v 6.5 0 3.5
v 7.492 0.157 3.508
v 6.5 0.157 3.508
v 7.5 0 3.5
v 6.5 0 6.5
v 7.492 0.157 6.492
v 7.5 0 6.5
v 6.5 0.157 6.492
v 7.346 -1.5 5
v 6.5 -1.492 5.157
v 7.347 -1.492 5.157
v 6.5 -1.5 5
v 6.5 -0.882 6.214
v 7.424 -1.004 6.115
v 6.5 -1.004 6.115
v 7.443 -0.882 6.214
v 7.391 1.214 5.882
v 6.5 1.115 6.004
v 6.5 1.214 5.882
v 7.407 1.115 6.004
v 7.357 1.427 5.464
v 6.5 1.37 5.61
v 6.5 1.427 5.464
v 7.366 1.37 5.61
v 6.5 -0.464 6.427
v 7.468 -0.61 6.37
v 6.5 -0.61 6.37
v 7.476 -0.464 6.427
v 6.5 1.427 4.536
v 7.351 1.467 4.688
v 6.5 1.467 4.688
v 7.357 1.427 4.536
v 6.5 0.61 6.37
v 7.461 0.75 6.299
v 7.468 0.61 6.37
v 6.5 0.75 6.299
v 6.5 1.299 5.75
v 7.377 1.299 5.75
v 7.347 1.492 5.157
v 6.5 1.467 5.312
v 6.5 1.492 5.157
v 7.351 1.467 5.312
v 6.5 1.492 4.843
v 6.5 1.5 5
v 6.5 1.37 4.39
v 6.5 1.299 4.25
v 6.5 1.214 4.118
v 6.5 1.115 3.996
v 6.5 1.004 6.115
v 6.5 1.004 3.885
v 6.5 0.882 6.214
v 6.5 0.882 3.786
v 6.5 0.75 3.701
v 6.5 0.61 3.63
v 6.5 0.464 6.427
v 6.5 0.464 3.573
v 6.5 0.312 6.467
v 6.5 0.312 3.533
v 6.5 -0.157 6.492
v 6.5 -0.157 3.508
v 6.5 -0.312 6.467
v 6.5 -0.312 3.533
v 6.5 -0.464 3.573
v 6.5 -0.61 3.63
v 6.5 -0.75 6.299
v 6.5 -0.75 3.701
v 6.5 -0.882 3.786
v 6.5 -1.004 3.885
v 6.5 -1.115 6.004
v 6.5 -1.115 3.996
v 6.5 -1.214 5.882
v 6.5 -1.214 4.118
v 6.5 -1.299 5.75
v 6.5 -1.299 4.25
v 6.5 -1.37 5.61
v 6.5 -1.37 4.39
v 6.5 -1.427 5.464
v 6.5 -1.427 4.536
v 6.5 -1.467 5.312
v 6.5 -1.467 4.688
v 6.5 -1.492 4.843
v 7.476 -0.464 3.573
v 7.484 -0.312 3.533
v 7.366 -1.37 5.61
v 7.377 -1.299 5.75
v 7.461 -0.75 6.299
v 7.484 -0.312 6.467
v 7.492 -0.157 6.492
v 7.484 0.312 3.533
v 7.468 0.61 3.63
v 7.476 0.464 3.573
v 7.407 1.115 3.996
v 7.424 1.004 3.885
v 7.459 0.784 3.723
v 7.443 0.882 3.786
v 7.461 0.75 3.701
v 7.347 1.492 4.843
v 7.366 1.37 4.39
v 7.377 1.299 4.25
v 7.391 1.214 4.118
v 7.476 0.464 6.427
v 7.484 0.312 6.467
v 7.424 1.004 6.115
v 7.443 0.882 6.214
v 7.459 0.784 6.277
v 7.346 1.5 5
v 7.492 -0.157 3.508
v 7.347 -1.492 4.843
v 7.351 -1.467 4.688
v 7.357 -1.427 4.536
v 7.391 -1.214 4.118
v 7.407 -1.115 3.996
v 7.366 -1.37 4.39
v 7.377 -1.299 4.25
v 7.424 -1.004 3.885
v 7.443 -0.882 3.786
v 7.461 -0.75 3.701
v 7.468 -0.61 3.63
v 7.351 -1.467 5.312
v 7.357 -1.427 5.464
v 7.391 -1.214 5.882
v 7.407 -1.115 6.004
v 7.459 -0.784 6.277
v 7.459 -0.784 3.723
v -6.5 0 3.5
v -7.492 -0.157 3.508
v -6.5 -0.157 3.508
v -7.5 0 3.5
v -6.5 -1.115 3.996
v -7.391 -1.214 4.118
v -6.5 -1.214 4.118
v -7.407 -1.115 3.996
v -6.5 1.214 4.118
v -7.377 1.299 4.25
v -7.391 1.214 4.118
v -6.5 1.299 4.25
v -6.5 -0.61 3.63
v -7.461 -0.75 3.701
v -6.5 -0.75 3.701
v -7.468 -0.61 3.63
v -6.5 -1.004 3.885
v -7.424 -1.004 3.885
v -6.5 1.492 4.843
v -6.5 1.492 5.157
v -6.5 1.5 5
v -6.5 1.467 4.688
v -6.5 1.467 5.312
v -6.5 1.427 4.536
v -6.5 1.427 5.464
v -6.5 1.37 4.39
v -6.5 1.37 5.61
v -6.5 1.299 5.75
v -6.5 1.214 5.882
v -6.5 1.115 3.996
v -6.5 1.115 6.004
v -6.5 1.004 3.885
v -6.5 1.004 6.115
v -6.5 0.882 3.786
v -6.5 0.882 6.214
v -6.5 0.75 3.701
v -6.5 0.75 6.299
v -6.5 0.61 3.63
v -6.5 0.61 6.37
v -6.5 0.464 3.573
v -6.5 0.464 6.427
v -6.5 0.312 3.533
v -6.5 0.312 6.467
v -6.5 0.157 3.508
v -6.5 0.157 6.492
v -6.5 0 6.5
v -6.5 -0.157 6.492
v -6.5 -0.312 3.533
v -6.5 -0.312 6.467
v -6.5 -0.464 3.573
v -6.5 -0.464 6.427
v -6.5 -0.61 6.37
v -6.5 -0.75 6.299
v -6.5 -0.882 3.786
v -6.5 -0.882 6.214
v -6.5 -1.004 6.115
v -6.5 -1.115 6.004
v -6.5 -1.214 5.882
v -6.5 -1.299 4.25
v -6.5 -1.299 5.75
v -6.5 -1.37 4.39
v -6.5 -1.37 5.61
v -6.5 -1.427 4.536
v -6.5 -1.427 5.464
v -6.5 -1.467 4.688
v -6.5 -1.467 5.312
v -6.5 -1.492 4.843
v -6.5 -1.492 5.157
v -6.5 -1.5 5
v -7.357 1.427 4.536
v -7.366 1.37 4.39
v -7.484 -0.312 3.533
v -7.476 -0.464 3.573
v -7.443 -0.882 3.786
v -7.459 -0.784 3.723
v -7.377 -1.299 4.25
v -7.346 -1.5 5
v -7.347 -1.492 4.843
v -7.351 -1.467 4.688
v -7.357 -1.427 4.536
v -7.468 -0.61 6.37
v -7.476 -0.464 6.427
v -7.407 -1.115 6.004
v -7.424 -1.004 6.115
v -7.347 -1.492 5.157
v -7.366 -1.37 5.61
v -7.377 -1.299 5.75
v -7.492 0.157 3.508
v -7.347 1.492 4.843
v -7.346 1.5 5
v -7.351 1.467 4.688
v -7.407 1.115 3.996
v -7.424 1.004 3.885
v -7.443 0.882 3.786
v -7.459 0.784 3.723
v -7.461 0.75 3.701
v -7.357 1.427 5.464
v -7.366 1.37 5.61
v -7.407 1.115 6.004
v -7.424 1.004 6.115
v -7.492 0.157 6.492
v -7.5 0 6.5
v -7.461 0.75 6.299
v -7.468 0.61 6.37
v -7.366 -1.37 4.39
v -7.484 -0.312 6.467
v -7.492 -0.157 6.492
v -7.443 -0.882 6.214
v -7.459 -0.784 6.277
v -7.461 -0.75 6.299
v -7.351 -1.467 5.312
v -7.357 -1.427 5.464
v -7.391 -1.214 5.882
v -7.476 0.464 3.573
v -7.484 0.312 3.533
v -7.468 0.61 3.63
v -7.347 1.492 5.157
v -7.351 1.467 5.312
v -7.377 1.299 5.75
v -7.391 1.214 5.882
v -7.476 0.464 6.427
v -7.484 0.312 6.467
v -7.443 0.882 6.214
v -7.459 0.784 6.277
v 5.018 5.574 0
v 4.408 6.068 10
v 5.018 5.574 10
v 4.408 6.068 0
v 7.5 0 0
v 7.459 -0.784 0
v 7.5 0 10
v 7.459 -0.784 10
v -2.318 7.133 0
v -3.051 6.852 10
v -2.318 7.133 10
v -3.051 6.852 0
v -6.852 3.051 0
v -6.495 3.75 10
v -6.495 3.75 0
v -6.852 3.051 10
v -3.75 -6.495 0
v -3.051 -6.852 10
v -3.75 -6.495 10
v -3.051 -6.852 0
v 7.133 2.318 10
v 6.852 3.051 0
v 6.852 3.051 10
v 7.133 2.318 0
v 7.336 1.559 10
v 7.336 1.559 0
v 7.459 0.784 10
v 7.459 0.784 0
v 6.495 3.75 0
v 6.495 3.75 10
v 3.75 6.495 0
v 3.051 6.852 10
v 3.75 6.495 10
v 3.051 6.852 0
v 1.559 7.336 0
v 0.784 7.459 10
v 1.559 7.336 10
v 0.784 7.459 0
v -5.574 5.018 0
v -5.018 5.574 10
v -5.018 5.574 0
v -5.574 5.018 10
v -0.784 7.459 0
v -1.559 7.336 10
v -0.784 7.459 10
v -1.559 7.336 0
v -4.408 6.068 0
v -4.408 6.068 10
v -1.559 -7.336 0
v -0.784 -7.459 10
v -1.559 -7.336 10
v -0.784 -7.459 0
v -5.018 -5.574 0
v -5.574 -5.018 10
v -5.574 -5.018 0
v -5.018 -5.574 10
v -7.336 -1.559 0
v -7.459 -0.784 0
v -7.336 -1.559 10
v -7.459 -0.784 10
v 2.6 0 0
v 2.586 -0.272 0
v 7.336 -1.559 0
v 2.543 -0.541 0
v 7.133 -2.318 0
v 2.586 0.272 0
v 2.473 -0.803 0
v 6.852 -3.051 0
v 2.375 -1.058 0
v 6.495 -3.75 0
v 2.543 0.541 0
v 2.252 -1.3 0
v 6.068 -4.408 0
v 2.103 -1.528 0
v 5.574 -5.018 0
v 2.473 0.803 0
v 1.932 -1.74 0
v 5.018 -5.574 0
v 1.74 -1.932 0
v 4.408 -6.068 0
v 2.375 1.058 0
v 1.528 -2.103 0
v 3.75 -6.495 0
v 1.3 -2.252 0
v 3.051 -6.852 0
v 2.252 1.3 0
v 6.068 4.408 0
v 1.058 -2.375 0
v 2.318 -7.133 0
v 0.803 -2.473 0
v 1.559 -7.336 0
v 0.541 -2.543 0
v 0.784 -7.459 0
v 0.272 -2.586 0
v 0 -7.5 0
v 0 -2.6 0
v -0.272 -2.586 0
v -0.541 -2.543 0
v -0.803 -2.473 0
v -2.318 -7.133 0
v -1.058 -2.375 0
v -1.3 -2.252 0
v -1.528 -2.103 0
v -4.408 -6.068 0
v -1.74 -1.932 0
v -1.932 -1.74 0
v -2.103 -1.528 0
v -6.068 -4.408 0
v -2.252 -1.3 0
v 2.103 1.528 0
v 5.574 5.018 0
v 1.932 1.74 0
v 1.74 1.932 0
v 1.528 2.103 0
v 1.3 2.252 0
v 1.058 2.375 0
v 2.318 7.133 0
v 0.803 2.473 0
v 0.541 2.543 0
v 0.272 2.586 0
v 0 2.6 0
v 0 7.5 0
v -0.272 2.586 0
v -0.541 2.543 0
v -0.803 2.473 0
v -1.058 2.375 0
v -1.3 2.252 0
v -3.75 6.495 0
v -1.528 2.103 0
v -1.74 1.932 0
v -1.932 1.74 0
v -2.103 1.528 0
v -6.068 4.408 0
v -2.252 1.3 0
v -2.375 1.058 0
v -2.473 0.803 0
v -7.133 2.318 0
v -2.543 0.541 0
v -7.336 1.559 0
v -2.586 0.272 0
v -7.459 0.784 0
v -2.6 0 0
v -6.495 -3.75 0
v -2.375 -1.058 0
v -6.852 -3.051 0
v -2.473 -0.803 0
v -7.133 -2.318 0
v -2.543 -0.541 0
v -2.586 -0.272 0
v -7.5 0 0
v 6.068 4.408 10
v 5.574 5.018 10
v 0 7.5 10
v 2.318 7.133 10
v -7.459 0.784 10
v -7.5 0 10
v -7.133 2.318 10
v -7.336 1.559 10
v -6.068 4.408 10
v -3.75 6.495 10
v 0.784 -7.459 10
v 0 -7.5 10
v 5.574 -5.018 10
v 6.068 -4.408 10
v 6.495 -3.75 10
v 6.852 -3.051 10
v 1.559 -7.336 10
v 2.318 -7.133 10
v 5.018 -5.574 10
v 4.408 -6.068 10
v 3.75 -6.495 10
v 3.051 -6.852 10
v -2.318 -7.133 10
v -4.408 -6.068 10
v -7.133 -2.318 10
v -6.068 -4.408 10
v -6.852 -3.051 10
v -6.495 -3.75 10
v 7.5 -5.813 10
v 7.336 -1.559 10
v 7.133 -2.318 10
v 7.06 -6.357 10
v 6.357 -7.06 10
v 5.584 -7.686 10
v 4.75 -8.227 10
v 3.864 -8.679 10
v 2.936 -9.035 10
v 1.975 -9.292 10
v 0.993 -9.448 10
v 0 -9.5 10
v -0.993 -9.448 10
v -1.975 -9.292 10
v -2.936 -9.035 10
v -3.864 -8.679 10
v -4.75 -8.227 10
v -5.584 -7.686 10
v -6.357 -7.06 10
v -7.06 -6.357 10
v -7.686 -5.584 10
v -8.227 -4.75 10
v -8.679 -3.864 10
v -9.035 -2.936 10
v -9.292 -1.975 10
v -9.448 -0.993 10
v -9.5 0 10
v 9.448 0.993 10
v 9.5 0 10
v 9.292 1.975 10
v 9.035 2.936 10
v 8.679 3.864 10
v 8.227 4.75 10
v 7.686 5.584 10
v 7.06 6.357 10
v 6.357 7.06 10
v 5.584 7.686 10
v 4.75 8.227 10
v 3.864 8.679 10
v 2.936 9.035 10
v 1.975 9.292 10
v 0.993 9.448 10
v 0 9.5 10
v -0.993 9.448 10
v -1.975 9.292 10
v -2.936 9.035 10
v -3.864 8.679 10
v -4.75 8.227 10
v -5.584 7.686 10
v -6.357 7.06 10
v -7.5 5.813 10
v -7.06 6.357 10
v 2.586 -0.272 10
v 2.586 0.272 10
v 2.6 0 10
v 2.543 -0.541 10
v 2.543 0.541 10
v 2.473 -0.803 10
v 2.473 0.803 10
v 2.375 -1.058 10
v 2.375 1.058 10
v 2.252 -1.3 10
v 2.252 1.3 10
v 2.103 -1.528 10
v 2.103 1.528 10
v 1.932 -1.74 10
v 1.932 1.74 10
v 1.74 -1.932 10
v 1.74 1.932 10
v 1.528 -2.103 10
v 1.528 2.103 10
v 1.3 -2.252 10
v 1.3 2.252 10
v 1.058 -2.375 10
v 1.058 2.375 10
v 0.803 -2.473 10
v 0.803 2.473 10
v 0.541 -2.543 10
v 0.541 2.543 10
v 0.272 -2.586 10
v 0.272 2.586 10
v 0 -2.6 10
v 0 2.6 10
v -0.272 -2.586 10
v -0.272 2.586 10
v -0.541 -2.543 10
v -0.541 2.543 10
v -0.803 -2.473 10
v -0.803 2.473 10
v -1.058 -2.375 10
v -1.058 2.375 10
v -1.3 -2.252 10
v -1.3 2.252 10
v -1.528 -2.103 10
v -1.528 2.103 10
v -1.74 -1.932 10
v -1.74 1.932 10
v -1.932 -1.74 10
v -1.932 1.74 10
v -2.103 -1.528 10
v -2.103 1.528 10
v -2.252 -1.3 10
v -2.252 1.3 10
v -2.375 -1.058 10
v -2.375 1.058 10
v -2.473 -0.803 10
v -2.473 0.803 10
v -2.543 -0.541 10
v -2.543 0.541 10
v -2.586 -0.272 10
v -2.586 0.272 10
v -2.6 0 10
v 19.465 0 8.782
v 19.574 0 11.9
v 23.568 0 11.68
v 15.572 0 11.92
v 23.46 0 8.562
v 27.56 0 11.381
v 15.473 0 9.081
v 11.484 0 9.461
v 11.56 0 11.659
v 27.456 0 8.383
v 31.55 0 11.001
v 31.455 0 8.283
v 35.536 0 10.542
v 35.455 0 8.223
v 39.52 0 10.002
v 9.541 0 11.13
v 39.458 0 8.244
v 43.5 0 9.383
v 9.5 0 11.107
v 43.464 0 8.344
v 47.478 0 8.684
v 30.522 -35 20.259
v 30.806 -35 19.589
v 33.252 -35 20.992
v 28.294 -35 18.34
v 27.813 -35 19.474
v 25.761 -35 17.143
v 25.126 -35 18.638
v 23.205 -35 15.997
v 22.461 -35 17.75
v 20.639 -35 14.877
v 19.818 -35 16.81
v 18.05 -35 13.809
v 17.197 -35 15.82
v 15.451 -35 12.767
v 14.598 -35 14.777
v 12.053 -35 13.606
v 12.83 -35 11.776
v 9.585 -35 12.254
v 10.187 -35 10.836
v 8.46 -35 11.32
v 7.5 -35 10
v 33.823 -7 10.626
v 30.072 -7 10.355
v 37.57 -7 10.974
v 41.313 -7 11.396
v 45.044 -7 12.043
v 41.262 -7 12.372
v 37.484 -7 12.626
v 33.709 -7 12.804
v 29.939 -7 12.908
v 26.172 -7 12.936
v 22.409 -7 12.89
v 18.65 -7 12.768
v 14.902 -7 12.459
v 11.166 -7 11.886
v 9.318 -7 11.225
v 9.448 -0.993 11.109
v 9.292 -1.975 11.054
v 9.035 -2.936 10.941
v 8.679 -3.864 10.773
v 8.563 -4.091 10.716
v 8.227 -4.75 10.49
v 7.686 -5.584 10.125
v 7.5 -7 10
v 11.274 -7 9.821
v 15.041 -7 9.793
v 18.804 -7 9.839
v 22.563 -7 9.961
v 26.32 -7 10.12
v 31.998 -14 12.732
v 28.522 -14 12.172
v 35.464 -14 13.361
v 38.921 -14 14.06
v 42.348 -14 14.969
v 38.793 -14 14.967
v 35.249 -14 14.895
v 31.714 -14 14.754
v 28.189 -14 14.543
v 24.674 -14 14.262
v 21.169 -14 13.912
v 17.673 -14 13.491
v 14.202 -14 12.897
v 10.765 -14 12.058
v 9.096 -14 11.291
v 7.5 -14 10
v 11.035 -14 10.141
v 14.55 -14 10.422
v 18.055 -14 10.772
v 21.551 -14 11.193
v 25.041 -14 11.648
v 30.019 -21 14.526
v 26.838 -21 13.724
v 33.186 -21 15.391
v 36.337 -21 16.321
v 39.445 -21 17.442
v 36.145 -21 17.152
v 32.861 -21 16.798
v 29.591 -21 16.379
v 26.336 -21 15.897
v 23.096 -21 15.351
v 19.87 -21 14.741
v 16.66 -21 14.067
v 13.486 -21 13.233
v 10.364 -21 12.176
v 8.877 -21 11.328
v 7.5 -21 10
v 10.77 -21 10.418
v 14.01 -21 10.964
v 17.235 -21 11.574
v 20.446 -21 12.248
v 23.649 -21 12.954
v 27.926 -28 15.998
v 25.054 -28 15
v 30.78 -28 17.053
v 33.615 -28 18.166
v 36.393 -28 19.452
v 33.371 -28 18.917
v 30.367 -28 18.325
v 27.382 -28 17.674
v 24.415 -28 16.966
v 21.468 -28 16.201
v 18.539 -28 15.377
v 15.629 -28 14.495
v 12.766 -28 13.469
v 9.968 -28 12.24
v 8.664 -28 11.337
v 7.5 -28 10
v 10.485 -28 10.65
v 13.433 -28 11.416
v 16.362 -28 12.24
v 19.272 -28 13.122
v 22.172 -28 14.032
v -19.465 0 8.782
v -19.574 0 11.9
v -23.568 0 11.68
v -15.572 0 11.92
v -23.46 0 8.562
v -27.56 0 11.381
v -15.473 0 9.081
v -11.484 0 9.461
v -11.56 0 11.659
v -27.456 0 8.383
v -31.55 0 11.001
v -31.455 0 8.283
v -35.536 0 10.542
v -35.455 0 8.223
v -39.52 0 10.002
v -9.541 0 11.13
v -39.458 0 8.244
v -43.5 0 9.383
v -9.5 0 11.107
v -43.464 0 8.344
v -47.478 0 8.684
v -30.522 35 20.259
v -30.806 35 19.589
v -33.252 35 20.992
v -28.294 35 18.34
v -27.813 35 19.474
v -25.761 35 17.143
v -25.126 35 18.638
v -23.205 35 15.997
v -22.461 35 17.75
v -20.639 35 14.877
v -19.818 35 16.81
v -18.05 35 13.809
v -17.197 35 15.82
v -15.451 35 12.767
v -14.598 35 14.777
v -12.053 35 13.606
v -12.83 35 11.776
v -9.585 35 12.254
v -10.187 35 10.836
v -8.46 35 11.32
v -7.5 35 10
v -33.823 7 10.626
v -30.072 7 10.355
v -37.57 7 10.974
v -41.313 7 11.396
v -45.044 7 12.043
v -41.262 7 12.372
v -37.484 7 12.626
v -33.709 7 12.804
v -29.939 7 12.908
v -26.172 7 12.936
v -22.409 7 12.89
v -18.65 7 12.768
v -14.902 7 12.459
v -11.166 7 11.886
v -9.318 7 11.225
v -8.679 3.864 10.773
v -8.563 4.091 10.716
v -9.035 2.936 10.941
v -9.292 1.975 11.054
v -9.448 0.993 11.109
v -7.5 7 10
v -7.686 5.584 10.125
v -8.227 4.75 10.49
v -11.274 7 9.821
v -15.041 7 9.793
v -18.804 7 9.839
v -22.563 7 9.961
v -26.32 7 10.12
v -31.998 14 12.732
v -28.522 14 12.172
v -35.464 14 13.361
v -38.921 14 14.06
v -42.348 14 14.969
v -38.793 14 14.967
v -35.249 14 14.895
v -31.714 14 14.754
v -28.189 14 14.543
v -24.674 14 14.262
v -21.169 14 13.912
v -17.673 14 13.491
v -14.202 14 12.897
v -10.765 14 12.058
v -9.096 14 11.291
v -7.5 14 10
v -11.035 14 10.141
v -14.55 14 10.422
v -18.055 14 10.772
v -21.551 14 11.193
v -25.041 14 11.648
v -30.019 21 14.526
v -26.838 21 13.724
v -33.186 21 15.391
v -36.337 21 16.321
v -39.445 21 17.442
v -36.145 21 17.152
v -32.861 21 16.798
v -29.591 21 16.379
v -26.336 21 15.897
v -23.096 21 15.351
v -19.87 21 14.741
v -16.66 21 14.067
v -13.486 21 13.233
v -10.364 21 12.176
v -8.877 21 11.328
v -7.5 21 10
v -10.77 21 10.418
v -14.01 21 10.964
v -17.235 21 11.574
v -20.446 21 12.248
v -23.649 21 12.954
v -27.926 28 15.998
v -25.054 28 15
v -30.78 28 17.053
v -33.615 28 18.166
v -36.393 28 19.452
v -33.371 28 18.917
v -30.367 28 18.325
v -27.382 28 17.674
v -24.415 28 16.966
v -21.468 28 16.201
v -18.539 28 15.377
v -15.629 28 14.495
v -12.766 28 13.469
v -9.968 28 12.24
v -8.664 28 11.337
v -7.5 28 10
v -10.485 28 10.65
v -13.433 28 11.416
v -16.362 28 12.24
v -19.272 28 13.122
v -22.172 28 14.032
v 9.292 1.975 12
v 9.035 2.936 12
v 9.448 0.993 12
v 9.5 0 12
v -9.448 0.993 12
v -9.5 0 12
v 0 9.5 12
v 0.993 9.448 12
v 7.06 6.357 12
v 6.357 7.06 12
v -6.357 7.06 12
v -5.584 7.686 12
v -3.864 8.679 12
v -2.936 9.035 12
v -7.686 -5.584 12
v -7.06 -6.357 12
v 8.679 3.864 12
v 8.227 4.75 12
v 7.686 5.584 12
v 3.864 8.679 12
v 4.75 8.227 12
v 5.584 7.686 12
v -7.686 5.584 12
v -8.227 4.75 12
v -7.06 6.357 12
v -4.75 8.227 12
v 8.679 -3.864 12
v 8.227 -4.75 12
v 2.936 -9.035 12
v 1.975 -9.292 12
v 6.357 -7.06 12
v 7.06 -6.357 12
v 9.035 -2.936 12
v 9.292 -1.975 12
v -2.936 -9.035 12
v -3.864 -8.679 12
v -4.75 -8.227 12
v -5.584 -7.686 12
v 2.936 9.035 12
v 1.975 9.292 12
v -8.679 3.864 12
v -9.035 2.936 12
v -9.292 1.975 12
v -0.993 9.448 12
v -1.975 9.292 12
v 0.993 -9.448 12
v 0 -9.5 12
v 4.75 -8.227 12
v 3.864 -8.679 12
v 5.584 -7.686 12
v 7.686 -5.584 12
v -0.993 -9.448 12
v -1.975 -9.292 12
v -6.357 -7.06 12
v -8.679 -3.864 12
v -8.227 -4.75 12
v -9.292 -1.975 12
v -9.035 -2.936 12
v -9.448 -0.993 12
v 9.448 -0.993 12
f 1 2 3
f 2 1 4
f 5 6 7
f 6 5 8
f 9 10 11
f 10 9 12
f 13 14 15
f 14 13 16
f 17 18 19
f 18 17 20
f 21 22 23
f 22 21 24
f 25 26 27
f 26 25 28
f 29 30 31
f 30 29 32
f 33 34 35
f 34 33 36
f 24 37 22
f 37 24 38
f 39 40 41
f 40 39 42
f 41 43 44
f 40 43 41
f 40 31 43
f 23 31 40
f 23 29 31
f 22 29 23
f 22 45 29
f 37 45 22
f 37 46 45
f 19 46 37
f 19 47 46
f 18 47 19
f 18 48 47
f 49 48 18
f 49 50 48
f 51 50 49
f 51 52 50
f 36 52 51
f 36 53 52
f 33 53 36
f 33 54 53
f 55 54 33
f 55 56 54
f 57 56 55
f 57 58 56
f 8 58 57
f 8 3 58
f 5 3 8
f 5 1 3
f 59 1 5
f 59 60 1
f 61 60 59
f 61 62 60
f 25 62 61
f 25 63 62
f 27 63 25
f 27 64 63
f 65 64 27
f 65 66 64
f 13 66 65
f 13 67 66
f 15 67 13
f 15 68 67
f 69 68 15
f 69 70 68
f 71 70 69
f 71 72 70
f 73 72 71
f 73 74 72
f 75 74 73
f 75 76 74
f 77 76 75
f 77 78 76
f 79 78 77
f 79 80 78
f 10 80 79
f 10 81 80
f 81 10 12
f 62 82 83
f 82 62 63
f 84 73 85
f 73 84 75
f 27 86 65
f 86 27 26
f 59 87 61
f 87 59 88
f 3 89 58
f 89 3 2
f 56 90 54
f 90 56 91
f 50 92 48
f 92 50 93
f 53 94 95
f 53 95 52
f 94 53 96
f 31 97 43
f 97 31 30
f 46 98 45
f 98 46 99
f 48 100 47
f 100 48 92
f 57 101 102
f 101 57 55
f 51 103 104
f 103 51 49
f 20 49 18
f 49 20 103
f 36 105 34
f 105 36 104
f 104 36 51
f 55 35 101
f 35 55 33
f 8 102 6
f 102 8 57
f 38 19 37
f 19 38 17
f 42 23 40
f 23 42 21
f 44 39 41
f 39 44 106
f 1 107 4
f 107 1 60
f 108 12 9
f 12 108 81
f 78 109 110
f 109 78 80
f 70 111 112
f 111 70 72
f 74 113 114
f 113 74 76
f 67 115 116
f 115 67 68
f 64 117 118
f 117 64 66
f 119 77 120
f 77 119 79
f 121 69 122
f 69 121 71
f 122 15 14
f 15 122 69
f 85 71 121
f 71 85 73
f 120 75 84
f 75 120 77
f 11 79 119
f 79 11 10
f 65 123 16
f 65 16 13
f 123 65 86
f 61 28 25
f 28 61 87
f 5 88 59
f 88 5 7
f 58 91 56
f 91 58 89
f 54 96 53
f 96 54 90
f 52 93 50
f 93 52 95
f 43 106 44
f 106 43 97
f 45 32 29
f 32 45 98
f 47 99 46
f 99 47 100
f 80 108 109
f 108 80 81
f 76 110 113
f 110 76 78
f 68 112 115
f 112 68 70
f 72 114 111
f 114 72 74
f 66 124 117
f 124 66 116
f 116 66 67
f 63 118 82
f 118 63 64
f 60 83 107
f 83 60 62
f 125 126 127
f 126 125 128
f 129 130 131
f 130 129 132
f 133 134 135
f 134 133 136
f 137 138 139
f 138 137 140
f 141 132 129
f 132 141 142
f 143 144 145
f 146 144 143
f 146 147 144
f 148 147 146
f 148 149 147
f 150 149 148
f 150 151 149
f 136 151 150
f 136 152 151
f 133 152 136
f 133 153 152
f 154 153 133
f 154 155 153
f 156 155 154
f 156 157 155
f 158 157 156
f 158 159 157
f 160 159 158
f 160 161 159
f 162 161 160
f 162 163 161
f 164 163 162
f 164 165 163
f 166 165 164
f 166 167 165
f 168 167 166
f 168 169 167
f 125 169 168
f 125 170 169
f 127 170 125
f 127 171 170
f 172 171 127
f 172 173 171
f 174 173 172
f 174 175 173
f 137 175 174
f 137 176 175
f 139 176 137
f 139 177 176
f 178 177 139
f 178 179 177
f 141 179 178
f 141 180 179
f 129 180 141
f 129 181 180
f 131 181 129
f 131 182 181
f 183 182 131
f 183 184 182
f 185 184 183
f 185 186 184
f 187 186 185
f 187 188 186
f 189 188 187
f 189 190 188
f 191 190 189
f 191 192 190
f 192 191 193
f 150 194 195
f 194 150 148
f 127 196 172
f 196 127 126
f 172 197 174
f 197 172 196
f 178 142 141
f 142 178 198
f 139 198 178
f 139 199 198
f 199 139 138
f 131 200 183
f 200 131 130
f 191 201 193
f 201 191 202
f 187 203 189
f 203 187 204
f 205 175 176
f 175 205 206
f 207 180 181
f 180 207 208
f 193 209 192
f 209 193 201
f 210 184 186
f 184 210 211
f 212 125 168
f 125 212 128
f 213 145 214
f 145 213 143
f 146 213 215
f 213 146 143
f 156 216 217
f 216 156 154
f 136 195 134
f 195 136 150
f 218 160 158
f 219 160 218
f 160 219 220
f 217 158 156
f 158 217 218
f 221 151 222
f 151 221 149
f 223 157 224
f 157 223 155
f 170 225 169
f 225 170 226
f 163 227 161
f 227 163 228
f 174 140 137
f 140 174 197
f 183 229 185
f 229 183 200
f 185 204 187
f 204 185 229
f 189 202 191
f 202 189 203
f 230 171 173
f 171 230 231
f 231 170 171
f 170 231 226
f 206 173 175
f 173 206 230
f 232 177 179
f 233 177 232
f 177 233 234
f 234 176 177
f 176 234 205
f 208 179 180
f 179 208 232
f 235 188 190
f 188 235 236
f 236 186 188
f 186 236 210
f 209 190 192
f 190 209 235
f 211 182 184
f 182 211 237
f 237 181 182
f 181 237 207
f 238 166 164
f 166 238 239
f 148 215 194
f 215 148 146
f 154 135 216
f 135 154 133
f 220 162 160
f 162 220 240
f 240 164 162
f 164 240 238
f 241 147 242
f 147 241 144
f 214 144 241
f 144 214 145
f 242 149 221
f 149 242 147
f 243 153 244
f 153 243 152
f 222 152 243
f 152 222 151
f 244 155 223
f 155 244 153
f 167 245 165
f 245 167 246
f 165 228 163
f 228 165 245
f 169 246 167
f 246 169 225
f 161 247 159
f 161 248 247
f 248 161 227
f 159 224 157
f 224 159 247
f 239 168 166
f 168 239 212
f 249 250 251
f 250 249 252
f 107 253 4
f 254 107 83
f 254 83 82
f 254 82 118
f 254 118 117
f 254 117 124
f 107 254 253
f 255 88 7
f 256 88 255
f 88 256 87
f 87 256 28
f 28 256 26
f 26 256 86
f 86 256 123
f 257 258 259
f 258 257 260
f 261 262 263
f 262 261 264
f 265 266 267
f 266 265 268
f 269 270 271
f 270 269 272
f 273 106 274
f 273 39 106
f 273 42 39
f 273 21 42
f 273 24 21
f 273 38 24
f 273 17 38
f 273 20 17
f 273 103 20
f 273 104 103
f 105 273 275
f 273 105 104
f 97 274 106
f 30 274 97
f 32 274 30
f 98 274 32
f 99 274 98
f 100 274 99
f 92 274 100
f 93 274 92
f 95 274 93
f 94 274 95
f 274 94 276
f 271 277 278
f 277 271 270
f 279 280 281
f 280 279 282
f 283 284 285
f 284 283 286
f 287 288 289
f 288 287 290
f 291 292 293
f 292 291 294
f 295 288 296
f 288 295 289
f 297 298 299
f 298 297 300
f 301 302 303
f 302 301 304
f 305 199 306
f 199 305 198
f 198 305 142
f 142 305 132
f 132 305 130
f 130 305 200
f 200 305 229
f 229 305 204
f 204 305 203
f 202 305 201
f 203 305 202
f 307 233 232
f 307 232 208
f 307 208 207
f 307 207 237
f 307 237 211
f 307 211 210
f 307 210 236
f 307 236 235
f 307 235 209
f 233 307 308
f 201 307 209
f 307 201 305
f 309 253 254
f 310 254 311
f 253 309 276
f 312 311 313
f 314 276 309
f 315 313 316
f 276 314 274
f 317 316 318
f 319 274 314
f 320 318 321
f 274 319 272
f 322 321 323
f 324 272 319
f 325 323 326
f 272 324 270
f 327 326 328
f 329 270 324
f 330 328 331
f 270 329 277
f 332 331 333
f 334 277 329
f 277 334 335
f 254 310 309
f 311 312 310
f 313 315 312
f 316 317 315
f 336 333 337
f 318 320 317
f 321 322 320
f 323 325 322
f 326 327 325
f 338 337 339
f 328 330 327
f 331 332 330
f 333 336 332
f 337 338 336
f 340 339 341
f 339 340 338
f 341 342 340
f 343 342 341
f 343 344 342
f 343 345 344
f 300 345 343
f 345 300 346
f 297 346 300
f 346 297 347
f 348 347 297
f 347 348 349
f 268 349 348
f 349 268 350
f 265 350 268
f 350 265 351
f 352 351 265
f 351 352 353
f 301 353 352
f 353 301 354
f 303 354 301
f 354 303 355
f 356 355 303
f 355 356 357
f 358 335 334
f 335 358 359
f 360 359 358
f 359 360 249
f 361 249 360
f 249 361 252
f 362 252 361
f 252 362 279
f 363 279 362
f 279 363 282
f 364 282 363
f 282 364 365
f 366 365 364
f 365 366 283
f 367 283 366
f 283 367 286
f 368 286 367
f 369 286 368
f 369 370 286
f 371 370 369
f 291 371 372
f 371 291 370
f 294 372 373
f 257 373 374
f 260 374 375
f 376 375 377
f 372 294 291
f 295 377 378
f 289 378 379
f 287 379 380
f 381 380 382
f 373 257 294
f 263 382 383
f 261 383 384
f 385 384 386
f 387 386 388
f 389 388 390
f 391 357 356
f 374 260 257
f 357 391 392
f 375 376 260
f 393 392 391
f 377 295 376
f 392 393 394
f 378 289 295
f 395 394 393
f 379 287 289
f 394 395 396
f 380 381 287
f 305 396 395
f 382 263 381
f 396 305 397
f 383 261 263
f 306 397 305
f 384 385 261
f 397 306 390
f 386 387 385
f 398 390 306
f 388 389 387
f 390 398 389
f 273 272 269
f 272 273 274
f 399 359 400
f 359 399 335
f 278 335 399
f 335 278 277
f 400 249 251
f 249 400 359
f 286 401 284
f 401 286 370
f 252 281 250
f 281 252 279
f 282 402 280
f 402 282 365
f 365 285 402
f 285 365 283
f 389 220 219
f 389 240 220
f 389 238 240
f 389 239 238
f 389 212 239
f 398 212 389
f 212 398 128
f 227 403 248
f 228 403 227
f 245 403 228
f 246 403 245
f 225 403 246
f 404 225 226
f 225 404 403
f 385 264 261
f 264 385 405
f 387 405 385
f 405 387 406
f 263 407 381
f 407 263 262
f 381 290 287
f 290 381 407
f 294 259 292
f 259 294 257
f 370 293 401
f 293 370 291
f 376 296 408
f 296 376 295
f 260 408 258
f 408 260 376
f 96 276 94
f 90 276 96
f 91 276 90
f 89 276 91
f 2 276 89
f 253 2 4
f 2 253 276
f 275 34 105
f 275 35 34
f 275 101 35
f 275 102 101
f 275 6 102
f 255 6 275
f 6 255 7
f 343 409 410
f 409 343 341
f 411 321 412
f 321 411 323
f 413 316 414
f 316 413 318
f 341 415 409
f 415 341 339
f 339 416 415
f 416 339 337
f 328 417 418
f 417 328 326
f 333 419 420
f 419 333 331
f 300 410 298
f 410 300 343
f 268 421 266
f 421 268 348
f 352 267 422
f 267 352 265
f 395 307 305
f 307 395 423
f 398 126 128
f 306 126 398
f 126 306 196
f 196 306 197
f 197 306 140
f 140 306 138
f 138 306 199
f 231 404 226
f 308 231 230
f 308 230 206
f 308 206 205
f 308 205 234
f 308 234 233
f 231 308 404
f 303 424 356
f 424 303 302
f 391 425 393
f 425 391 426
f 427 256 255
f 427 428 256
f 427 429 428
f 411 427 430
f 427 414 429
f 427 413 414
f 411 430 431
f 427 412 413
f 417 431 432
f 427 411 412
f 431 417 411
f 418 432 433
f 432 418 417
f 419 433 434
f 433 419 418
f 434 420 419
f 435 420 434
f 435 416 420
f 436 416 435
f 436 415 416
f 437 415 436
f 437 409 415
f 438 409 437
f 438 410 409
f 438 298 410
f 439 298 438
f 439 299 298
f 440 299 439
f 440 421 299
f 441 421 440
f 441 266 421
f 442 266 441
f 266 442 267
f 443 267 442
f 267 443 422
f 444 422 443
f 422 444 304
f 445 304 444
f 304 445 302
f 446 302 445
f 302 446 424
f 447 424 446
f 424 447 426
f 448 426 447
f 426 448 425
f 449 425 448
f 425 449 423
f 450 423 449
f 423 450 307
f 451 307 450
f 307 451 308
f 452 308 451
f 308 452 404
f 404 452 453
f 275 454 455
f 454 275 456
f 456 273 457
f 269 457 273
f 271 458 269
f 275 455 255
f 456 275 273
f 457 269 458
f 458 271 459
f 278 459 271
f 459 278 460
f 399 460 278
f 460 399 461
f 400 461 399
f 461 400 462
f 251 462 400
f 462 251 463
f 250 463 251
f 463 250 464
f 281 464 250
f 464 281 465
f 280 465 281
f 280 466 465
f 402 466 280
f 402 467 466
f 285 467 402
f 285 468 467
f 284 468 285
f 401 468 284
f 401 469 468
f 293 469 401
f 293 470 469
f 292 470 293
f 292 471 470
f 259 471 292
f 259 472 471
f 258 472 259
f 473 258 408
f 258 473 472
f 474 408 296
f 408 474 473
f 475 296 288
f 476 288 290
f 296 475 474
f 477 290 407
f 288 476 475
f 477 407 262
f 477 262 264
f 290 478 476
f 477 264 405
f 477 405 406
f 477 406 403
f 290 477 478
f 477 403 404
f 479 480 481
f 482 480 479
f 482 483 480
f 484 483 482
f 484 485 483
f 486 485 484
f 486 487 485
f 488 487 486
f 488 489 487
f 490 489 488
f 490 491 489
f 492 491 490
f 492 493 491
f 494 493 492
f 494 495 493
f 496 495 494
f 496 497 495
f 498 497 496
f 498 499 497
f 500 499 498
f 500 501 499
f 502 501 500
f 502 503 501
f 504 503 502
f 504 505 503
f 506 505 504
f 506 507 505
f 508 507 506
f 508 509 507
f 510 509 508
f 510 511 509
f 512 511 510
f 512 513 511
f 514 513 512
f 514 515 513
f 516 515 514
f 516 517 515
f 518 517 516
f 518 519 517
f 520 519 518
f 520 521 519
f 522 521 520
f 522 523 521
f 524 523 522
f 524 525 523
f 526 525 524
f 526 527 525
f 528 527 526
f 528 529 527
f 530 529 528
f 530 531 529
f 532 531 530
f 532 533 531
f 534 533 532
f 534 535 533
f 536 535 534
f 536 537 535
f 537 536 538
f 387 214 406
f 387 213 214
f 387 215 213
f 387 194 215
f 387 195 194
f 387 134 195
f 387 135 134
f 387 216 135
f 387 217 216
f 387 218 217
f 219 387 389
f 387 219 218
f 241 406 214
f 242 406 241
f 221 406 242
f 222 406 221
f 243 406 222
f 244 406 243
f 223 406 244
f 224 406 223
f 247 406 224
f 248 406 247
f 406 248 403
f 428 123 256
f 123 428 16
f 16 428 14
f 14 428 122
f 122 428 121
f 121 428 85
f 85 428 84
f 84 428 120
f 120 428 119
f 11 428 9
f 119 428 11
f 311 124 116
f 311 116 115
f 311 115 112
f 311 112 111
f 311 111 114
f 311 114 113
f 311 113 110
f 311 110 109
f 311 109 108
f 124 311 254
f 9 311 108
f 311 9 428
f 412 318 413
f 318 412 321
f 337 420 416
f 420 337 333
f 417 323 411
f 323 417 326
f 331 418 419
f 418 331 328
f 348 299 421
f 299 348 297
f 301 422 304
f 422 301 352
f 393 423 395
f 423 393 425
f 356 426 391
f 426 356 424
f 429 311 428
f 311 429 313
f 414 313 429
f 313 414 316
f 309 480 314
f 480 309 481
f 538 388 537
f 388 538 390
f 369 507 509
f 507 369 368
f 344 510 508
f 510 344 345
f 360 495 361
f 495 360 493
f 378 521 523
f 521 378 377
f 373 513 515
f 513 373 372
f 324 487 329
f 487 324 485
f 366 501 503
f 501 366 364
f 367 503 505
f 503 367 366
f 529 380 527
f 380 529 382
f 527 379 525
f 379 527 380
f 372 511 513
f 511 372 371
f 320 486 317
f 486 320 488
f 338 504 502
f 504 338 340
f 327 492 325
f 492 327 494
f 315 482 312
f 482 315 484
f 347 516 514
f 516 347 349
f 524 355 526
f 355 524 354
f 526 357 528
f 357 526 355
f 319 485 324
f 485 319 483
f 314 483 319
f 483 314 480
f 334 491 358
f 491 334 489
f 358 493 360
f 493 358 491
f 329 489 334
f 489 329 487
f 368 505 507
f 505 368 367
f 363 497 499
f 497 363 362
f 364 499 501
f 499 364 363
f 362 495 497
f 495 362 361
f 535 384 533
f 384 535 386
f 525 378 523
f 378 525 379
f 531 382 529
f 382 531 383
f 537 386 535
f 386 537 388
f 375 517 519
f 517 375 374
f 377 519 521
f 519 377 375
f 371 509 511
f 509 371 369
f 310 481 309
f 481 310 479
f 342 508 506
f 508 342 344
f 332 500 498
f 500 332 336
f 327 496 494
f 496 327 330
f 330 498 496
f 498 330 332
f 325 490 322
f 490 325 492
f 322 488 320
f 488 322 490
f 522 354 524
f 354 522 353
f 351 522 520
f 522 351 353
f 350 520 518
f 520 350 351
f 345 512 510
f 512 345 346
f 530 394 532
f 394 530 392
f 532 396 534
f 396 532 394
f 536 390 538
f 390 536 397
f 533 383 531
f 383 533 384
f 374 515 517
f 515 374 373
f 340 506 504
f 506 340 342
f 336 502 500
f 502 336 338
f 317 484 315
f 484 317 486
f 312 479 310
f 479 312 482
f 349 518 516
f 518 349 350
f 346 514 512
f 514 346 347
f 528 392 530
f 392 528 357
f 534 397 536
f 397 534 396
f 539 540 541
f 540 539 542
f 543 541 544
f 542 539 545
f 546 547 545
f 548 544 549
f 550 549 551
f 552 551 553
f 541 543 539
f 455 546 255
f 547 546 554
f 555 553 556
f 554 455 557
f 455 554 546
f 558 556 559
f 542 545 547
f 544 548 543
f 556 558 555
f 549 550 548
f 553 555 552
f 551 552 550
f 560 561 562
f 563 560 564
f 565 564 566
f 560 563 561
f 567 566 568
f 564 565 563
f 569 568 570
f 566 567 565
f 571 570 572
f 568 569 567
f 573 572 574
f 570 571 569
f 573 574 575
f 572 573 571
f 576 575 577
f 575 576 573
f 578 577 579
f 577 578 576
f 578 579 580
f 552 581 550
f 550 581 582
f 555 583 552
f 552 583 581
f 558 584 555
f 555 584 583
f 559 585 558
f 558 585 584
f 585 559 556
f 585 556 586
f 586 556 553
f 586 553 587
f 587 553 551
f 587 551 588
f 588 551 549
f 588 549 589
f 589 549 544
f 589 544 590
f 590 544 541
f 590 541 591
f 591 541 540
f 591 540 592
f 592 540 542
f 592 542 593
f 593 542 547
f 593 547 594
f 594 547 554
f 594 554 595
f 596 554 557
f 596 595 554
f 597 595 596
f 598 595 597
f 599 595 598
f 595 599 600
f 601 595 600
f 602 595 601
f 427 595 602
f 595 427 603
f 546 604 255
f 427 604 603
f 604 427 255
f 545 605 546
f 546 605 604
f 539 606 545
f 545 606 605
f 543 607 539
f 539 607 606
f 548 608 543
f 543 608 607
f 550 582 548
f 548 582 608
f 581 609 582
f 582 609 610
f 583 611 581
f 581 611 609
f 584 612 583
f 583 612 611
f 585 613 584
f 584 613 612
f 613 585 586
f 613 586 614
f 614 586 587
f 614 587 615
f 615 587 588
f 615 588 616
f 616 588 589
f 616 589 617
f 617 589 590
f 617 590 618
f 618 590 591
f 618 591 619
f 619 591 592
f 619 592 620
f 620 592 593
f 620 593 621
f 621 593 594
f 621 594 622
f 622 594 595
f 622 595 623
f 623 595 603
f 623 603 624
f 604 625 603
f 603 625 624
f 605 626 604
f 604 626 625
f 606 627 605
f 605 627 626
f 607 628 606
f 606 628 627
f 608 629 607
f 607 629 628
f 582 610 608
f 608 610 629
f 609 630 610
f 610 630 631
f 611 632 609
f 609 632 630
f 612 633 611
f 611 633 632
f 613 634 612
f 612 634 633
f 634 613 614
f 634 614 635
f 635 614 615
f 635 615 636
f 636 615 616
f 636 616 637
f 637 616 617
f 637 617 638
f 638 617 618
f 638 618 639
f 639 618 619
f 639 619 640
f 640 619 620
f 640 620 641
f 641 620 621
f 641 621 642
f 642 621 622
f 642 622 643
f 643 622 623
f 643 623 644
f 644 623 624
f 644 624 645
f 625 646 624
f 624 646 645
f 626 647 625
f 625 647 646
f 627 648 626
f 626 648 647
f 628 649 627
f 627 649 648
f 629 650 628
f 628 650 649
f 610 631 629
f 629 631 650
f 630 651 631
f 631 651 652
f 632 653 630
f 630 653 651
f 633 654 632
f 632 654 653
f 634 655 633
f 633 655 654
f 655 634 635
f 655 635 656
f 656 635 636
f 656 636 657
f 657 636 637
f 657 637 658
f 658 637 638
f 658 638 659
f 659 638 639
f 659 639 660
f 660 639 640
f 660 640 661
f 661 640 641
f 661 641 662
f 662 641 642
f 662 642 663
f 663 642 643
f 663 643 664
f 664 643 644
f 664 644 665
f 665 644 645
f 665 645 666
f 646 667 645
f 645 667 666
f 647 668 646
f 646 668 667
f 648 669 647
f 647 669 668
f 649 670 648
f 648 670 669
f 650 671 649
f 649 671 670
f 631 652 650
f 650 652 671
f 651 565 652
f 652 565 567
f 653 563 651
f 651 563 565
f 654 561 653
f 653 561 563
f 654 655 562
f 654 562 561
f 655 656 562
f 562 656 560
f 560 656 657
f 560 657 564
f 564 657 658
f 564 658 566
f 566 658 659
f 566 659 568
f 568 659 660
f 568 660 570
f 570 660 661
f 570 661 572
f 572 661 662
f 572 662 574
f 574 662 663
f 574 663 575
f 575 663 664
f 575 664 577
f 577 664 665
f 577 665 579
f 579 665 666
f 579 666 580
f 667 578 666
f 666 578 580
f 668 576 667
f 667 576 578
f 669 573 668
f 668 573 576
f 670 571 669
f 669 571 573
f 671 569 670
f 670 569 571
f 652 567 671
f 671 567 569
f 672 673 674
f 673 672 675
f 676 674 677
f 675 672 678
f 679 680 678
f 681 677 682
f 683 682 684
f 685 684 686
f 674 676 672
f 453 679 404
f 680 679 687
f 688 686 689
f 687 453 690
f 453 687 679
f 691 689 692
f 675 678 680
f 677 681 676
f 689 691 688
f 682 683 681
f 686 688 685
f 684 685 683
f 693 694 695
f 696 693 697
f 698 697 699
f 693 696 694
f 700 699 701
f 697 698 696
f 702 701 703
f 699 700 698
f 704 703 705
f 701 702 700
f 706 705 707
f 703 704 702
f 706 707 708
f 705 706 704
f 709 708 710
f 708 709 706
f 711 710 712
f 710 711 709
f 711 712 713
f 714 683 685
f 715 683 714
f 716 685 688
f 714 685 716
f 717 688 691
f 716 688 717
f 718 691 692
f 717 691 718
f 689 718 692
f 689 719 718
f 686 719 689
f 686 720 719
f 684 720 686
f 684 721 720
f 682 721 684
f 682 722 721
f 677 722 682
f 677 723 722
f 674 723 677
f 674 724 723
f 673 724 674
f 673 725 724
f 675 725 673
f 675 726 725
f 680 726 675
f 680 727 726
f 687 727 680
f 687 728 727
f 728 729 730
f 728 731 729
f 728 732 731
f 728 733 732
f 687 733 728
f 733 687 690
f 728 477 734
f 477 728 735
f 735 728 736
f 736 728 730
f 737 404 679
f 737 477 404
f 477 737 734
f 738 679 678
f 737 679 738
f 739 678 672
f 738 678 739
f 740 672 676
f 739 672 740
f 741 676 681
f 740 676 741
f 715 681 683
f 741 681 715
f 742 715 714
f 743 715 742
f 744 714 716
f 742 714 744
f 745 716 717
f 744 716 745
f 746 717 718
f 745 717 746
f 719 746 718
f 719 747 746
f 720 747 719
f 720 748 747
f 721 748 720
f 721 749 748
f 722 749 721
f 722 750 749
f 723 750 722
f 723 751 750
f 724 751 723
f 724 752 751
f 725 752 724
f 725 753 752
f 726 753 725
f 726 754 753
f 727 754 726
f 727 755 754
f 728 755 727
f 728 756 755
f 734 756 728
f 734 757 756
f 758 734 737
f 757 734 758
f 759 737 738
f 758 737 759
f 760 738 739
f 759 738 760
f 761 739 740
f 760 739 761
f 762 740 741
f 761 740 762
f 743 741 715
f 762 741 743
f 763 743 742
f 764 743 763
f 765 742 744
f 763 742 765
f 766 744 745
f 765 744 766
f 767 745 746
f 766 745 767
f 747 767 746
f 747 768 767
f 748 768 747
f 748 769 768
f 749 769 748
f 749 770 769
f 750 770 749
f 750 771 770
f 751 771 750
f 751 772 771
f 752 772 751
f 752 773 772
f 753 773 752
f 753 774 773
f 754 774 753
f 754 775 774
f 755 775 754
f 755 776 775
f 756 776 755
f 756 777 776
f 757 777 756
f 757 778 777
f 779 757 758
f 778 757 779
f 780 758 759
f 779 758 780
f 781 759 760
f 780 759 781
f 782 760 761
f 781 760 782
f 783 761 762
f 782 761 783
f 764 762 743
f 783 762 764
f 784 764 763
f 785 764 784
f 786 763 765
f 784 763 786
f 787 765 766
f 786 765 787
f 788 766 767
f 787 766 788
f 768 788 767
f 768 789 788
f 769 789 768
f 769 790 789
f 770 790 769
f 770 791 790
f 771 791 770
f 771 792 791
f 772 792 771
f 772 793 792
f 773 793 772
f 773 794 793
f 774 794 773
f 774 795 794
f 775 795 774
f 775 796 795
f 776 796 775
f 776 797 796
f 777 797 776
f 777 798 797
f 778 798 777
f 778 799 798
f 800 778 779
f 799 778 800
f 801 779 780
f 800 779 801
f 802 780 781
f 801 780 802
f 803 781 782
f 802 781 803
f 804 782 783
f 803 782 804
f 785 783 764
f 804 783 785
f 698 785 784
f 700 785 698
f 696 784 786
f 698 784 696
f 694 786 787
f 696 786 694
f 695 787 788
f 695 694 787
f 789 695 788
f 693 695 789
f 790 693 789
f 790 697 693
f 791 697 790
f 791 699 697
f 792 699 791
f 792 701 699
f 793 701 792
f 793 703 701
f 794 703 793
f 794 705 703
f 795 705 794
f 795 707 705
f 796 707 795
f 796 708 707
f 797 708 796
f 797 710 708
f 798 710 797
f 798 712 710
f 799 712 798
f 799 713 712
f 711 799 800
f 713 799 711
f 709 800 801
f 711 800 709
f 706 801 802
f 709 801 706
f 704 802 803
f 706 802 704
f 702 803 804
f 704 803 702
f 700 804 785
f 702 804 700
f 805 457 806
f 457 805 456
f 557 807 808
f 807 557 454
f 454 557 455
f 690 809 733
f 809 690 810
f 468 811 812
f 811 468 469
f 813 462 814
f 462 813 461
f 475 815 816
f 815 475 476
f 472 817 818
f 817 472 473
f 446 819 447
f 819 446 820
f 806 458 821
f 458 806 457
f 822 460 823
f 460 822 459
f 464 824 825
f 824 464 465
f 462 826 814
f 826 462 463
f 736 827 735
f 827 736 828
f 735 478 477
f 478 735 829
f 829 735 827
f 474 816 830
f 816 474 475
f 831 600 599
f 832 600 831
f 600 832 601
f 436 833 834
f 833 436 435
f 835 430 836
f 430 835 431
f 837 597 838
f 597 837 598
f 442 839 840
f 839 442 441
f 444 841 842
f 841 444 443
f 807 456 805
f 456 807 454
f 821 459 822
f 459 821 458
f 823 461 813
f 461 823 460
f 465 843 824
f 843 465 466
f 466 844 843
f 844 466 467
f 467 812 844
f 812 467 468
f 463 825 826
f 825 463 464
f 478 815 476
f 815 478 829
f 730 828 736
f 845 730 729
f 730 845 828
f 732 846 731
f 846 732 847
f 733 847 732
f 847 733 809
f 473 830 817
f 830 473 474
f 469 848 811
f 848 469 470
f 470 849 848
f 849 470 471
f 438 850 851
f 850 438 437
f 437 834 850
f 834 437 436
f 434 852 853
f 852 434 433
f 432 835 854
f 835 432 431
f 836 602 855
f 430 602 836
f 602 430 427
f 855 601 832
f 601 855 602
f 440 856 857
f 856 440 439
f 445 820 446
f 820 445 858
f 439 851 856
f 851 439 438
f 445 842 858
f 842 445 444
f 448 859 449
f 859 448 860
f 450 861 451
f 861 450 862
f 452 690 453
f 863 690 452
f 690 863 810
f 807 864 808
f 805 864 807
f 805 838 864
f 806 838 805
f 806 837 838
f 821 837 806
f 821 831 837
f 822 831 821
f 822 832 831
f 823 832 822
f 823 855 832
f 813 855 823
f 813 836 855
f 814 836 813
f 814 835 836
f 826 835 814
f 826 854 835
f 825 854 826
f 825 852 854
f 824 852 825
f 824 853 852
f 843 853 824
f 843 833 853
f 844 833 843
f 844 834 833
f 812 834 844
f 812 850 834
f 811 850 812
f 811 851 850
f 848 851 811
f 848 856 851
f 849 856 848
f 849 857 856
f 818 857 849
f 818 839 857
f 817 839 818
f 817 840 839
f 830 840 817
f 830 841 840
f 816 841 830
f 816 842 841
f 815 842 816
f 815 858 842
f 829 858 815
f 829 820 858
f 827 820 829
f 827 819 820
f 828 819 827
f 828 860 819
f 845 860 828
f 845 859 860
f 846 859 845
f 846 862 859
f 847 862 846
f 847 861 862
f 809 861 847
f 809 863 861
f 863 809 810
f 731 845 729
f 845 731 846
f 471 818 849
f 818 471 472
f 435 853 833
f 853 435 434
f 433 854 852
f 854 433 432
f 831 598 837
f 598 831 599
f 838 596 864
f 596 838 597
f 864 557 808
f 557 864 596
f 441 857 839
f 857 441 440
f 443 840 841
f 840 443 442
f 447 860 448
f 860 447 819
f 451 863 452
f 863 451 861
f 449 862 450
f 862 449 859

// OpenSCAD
/*
 * COMPLETE MOTOR + IMPELLER ASSEMBLY
 * For CFD fluid testing and visualization
 * 
 * This model includes:
 *   - Brushless motor (2204-2206 size)
 *   - Motor shaft (5mm)
 *   - Impeller hub
 *   - 3 impeller variants (bladeless, AI-blades, hybrid)
 *   - Mounting plate
 * 
 * Usage:
 *   - Render full assembly: F6
 *   - Export for CFD: Set EXPORT_MODE = "impeller_only"
 *   - Change design: Set IMPELLER_TYPE = "bladeless" | "bladed" | "hybrid"
 */

// ============================================================================
// CONFIGURATION PARAMETERS (AI-Optimizable)
// ============================================================================

// General Settings
$fn = 60;  // Resolution for CFD export (increase to 100 for final)

// Export Mode
EXPORT_MODE = "impeller_only";  // Options: "full_assembly", "impeller_only", "motor_only"

// Impeller Type
IMPELLER_TYPE = "bladed";  // Options: "bladeless", "bladed", "hybrid"

// Motor Specifications (2204-2206 brushless)
MOTOR_DIAMETER = 28;         // mm
MOTOR_HEIGHT = 25;           // mm
MOTOR_SHAFT_DIAMETER = 5;    // mm (standard)
MOTOR_SHAFT_LENGTH = 15;     // mm (extends above motor)
MOTOR_MOUNT_PATTERN = 16;    // mm (16x16 or 19x19 common)
MOTOR_SCREW_DIAMETER = 3;    // M3 screws

// Impeller Parameters - BLADELESS
BLADELESS_OUTER_DIAMETER = 90;    // mm
BLADELESS_AIR_GAP = 0.8;          // mm (optimize: 0.6-1.2)
BLADELESS_THROAT_RATIO = 0.72;    // (optimize: 0.65-0.80)
BLADELESS_EXPANSION_ANGLE = 18;   // degrees (optimize: 12-25)
BLADELESS_RING_THICKNESS = 3;     // mm (optimize: 2-4)
BLADELESS_HEIGHT = 24;            // mm

// Impeller Parameters - BLADED
BLADED_DIAMETER = 85;
BLADED_HUB_DIAMETER = 15;         // mm (optimize: 12-20)
BLADED_BLADE_COUNT = 2;
BLADED_ROOT_CHORD = 40;
BLADED_TIP_CHORD_RATIO = 0.7;    // (optimize: 0.6-0.8)
BLADED_BLADE_THICKNESS = 2;       // mm (optimize: 1.5-3)
BLADED_BLADE_TWIST = -25;
BLADED_ATTACK_ANGLE = -2;
BLADED_BLADE_HEIGHT = 12;         // mm (optimize: 10-15)

// Hub Parameters
HUB_DIAMETER = 15;
HUB_HEIGHT = 10;
HUB_SET_SCREW_DIAMETER = 3;  // M3 set screw

// Mounting Plate
PLATE_SIZE = 50;
PLATE_THICKNESS = 3;

// ============================================================================
// MOTOR MODEL
// ============================================================================

module brushless_motor_2204() {
    color("DarkSlateGray") {
        // Motor can (bell)
        difference() {
            cylinder(h=MOTOR_HEIGHT, d=MOTOR_DIAMETER);
            
            // Hollow inside (weight reduction visualization)
            translate([0, 0, -0.5])
                cylinder(h=MOTOR_HEIGHT - 5, d=MOTOR_DIAMETER - 4);
            
            // Mounting holes
            for(i = [0:3]) {
                rotate([0, 0, i * 90])
                    translate([MOTOR_MOUNT_PATTERN/2, 0, MOTOR_HEIGHT/2])
                        rotate([90, 0, 0])
                            cylinder(h=MOTOR_DIAMETER, d=MOTOR_SCREW_DIAMETER, center=true);
            }
        }
        
        // Motor base
        translate([0, 0, -3])
            cylinder(h=3, d=MOTOR_DIAMETER - 2);
    }
    
    // Motor shaft
    color("Silver")
        translate([0, 0, MOTOR_HEIGHT])
            cylinder(h=MOTOR_SHAFT_LENGTH, d=MOTOR_SHAFT_DIAMETER);
    
    // Shaft tip (for hub attachment)
    color("Silver")
        translate([0, 0, MOTOR_HEIGHT + MOTOR_SHAFT_LENGTH])
            cylinder(h=2, d=MOTOR_SHAFT_DIAMETER - 0.5);
}

// ============================================================================
// IMPELLER HUB
// ============================================================================

module impeller_hub() {
    color("Gray")
    difference() {
        // Hub body
        cylinder(h=HUB_HEIGHT, d=HUB_DIAMETER);
        
        // Shaft hole (5mm + 0.2mm clearance)
        translate([0, 0, -0.5])
            cylinder(h=HUB_HEIGHT + 1, d=MOTOR_SHAFT_DIAMETER + 0.2);
        
        // Set screw holes (2x for balance)
        for(i = [0:1]) {
            rotate([0, 0, i * 180])
                translate([HUB_DIAMETER/2 - 1, 0, HUB_HEIGHT/2])
                    rotate([0, 90, 0])
                        cylinder(h=5, d=HUB_SET_SCREW_DIAMETER);
        }
    }
}

// ============================================================================
// BLADELESS IMPELLER (Dyson-style)
// ============================================================================

module bladeless_impeller() {
    outer_r = BLADELESS_OUTER_DIAMETER / 2;
    throat_r = outer_r * BLADELESS_THROAT_RATIO;
    gap = BLADELESS_AIR_GAP;
    
    color("SkyBlue", 0.7)
    difference() {
        // Outer ring
        rotate_extrude()
            translate([outer_r - BLADELESS_RING_THICKNESS/2, BLADELESS_HEIGHT/2, 0])
                circle(d=BLADELESS_RING_THICKNESS + BLADELESS_HEIGHT);
        
        // Inner air gap (critical for Coanda effect)
        rotate_extrude()
            translate([outer_r - gap - BLADELESS_RING_THICKNESS/2, BLADELESS_HEIGHT/2, 0])
                circle(d=BLADELESS_RING_THICKNESS + BLADELESS_HEIGHT - 2*gap);
    }
    
    // Base plate (connects to hub)
    color("SkyBlue", 0.7)
    translate([0, 0, -2])
        difference() {
            cylinder(h=2, d=outer_r * 2);
            translate([0, 0, -0.5])
                cylinder(h=3, d=HUB_DIAMETER + 1);
        }
    
    // Air inlet (bell-shaped for smooth flow)
    color("SkyBlue", 0.7)
    translate([0, 0, -2]) {
        difference() {
            cylinder(h=15, d1=throat_r * 2, d2=outer_r * 1.8);
            translate([0, 0, -0.5])
                cylinder(h=16, d1=throat_r * 2 - 3, d2=outer_r * 1.8 - 3);
        }
    }
}

// ============================================================================
// AI-OPTIMIZED BLADED IMPELLER (NACA 2412 profile)
// ============================================================================

module naca_2412_blade(chord, height, twist_angle, attack_angle) {
    // Simplified NACA 2412 airfoil profile
    // Using parametric approximation for 3D printing
    
    color("LightSteelBlue", 0.8)
    linear_extrude(height=height, twist=twist_angle, scale=BLADED_TIP_CHORD_RATIO) {
        rotate([0, 0, attack_angle])
        polygon([
            // Upper surface (cambered)
            [0, 0],
            [chord * 0.05, chord * 0.03],
            [chord * 0.1, chord * 0.045],
            [chord * 0.2, chord * 0.055],
            [chord * 0.3, chord * 0.058],
            [chord * 0.4, chord * 0.056],
            [chord * 0.5, chord * 0.052],
            [chord * 0.6, chord * 0.046],
            [chord * 0.7, chord * 0.038],
            [chord * 0.8, chord * 0.028],
            [chord * 0.9, chord * 0.016],
            [chord * 1.0, chord * 0.002],
            // Lower surface (less cambered)
            [chord * 0.9, -chord * 0.010],
            [chord * 0.8, -chord * 0.016],
            [chord * 0.7, -chord * 0.020],
            [chord * 0.6, -chord * 0.022],
            [chord * 0.5, -chord * 0.023],
            [chord * 0.4, -chord * 0.022],
            [chord * 0.3, -chord * 0.020],
            [chord * 0.2, -chord * 0.016],
            [chord * 0.1, -chord * 0.010],
            [chord * 0.05, -chord * 0.005],
        ]);
    }
}

module bladed_impeller() {
    // Blades
    for(i = [0 : BLADED_BLADE_COUNT - 1]) {
        rotate([0, 0, i * (360 / BLADED_BLADE_COUNT)])
            translate([BLADED_HUB_DIAMETER/2, 0, 0])
                rotate([90, 0, 0])
                    naca_2412_blade(
                        BLADED_ROOT_CHORD, 
                        (BLADED_DIAMETER - BLADED_HUB_DIAMETER) / 2,
                        BLADED_BLADE_TWIST,
                        BLADED_ATTACK_ANGLE
                    );
    }
    
    // Hub disk (connects blades)
    color("LightSteelBlue", 0.8)
    cylinder(h=2, d=BLADED_HUB_DIAMETER + 4);
}

// ============================================================================
// HYBRID IMPELLER (Blades inside bladeless ring)
// ============================================================================

module hybrid_impeller() {
    // Outer bladeless ring
    bladeless_impeller();
    
    // Inner bladed impeller (scaled down to fit)
    scale([0.85, 0.85, 1])
        bladed_impeller();
}

// ============================================================================
// MOUNTING PLATE
// ============================================================================

module mounting_plate() {
    color("DimGray")
    difference() {
        // Base plate
        translate([-PLATE_SIZE/2, -PLATE_SIZE/2, 0])
            cube([PLATE_SIZE, PLATE_SIZE, PLATE_THICKNESS]);
        
        // Center hole for motor shaft
        translate([0, 0, -0.5])
            cylinder(h=PLATE_THICKNESS + 1, d=MOTOR_DIAMETER + 2);
        
        // Motor mounting holes
        for(i = [0:3]) {
            rotate([0, 0, i * 90])
                translate([MOTOR_MOUNT_PATTERN/2, 0, -0.5])
                    cylinder(h=PLATE_THICKNESS + 1, d=MOTOR_SCREW_DIAMETER);
        }
    }
}

// ============================================================================
// COMPLETE ASSEMBLY
// ============================================================================

module complete_assembly() {
    // Mounting plate (bottom)
    translate([0, 0, -PLATE_THICKNESS])
        mounting_plate();
    
    // Motor
    translate([0, 0, 0])
        brushless_motor_2204();
    
    // Hub (on shaft)
    translate([0, 0, MOTOR_HEIGHT + MOTOR_SHAFT_LENGTH - 2])
        impeller_hub();
    
    // Impeller (on hub)
    translate([0, 0, MOTOR_HEIGHT + MOTOR_SHAFT_LENGTH + HUB_HEIGHT]) {
        if (IMPELLER_TYPE == "bladeless") {
            bladeless_impeller();
        } else if (IMPELLER_TYPE == "bladed") {
            bladed_impeller();
        } else if (IMPELLER_TYPE == "hybrid") {
            hybrid_impeller();
        }
    }
}

// ============================================================================
// RENDER BASED ON EXPORT MODE
// ============================================================================

if (EXPORT_MODE == "full_assembly") {
    complete_assembly();
} 
else if (EXPORT_MODE == "impeller_only") {
    // For CFD testing - impeller + hub only
    impeller_hub();
    translate([0, 0, HUB_HEIGHT]) {
        if (IMPELLER_TYPE == "bladeless") {
            bladeless_impeller();
        } else if (IMPELLER_TYPE == "bladed") {
            bladed_impeller();
        } else if (IMPELLER_TYPE == "hybrid") {
            hybrid_impeller();
        }
    }
}
else if (EXPORT_MODE == "motor_only") {
    brushless_motor_2204();
}

// ============================================================================
// ANNOTATIONS FOR VISUALIZATION
// ============================================================================

// Uncomment to show dimensions
/*
color("Red", 0.3)
translate([BLADED_DIAMETER/2 + 10, 0, 20])
    text(str("Ø", BLADED_DIAMETER, "mm"), size=5, halign="left");

color("Green", 0.3)
translate([0, BLADED_DIAMETER/2 + 10, 20])
    text(str(BLADED_BLADE_COUNT, " blades"), size=5, halign="center");
*/

// ============================================================================
// EXPORT NOTES
// ============================================================================

/*
 * TO EXPORT FOR CFD TESTING:
 * 
 * 1. Set EXPORT_MODE = "impeller_only"
 * 2. Set IMPELLER_TYPE = "bladeless" (or "bladed" or "hybrid")
 * 3. Press F6 to render
 * 4. File → Export → Export as STL
 * 5. Use filename: impeller_bladeless_fn60.stl
 * 
 * FOR OPTIMIZATION:
 * - Modify parameters at top (marked with "optimize:")
 * - Re-render and export
 * - Upload to SimScale for CFD
 * - Compare results
 * 
 * RECOMMENDED CFD SETTINGS:
 * - Solver: k-omega SST
 * - RPM: 5000, 7000, 9000
 * - Mesh: 3-5M cells
 * - Boundary: Rotating zone on impeller
 */
